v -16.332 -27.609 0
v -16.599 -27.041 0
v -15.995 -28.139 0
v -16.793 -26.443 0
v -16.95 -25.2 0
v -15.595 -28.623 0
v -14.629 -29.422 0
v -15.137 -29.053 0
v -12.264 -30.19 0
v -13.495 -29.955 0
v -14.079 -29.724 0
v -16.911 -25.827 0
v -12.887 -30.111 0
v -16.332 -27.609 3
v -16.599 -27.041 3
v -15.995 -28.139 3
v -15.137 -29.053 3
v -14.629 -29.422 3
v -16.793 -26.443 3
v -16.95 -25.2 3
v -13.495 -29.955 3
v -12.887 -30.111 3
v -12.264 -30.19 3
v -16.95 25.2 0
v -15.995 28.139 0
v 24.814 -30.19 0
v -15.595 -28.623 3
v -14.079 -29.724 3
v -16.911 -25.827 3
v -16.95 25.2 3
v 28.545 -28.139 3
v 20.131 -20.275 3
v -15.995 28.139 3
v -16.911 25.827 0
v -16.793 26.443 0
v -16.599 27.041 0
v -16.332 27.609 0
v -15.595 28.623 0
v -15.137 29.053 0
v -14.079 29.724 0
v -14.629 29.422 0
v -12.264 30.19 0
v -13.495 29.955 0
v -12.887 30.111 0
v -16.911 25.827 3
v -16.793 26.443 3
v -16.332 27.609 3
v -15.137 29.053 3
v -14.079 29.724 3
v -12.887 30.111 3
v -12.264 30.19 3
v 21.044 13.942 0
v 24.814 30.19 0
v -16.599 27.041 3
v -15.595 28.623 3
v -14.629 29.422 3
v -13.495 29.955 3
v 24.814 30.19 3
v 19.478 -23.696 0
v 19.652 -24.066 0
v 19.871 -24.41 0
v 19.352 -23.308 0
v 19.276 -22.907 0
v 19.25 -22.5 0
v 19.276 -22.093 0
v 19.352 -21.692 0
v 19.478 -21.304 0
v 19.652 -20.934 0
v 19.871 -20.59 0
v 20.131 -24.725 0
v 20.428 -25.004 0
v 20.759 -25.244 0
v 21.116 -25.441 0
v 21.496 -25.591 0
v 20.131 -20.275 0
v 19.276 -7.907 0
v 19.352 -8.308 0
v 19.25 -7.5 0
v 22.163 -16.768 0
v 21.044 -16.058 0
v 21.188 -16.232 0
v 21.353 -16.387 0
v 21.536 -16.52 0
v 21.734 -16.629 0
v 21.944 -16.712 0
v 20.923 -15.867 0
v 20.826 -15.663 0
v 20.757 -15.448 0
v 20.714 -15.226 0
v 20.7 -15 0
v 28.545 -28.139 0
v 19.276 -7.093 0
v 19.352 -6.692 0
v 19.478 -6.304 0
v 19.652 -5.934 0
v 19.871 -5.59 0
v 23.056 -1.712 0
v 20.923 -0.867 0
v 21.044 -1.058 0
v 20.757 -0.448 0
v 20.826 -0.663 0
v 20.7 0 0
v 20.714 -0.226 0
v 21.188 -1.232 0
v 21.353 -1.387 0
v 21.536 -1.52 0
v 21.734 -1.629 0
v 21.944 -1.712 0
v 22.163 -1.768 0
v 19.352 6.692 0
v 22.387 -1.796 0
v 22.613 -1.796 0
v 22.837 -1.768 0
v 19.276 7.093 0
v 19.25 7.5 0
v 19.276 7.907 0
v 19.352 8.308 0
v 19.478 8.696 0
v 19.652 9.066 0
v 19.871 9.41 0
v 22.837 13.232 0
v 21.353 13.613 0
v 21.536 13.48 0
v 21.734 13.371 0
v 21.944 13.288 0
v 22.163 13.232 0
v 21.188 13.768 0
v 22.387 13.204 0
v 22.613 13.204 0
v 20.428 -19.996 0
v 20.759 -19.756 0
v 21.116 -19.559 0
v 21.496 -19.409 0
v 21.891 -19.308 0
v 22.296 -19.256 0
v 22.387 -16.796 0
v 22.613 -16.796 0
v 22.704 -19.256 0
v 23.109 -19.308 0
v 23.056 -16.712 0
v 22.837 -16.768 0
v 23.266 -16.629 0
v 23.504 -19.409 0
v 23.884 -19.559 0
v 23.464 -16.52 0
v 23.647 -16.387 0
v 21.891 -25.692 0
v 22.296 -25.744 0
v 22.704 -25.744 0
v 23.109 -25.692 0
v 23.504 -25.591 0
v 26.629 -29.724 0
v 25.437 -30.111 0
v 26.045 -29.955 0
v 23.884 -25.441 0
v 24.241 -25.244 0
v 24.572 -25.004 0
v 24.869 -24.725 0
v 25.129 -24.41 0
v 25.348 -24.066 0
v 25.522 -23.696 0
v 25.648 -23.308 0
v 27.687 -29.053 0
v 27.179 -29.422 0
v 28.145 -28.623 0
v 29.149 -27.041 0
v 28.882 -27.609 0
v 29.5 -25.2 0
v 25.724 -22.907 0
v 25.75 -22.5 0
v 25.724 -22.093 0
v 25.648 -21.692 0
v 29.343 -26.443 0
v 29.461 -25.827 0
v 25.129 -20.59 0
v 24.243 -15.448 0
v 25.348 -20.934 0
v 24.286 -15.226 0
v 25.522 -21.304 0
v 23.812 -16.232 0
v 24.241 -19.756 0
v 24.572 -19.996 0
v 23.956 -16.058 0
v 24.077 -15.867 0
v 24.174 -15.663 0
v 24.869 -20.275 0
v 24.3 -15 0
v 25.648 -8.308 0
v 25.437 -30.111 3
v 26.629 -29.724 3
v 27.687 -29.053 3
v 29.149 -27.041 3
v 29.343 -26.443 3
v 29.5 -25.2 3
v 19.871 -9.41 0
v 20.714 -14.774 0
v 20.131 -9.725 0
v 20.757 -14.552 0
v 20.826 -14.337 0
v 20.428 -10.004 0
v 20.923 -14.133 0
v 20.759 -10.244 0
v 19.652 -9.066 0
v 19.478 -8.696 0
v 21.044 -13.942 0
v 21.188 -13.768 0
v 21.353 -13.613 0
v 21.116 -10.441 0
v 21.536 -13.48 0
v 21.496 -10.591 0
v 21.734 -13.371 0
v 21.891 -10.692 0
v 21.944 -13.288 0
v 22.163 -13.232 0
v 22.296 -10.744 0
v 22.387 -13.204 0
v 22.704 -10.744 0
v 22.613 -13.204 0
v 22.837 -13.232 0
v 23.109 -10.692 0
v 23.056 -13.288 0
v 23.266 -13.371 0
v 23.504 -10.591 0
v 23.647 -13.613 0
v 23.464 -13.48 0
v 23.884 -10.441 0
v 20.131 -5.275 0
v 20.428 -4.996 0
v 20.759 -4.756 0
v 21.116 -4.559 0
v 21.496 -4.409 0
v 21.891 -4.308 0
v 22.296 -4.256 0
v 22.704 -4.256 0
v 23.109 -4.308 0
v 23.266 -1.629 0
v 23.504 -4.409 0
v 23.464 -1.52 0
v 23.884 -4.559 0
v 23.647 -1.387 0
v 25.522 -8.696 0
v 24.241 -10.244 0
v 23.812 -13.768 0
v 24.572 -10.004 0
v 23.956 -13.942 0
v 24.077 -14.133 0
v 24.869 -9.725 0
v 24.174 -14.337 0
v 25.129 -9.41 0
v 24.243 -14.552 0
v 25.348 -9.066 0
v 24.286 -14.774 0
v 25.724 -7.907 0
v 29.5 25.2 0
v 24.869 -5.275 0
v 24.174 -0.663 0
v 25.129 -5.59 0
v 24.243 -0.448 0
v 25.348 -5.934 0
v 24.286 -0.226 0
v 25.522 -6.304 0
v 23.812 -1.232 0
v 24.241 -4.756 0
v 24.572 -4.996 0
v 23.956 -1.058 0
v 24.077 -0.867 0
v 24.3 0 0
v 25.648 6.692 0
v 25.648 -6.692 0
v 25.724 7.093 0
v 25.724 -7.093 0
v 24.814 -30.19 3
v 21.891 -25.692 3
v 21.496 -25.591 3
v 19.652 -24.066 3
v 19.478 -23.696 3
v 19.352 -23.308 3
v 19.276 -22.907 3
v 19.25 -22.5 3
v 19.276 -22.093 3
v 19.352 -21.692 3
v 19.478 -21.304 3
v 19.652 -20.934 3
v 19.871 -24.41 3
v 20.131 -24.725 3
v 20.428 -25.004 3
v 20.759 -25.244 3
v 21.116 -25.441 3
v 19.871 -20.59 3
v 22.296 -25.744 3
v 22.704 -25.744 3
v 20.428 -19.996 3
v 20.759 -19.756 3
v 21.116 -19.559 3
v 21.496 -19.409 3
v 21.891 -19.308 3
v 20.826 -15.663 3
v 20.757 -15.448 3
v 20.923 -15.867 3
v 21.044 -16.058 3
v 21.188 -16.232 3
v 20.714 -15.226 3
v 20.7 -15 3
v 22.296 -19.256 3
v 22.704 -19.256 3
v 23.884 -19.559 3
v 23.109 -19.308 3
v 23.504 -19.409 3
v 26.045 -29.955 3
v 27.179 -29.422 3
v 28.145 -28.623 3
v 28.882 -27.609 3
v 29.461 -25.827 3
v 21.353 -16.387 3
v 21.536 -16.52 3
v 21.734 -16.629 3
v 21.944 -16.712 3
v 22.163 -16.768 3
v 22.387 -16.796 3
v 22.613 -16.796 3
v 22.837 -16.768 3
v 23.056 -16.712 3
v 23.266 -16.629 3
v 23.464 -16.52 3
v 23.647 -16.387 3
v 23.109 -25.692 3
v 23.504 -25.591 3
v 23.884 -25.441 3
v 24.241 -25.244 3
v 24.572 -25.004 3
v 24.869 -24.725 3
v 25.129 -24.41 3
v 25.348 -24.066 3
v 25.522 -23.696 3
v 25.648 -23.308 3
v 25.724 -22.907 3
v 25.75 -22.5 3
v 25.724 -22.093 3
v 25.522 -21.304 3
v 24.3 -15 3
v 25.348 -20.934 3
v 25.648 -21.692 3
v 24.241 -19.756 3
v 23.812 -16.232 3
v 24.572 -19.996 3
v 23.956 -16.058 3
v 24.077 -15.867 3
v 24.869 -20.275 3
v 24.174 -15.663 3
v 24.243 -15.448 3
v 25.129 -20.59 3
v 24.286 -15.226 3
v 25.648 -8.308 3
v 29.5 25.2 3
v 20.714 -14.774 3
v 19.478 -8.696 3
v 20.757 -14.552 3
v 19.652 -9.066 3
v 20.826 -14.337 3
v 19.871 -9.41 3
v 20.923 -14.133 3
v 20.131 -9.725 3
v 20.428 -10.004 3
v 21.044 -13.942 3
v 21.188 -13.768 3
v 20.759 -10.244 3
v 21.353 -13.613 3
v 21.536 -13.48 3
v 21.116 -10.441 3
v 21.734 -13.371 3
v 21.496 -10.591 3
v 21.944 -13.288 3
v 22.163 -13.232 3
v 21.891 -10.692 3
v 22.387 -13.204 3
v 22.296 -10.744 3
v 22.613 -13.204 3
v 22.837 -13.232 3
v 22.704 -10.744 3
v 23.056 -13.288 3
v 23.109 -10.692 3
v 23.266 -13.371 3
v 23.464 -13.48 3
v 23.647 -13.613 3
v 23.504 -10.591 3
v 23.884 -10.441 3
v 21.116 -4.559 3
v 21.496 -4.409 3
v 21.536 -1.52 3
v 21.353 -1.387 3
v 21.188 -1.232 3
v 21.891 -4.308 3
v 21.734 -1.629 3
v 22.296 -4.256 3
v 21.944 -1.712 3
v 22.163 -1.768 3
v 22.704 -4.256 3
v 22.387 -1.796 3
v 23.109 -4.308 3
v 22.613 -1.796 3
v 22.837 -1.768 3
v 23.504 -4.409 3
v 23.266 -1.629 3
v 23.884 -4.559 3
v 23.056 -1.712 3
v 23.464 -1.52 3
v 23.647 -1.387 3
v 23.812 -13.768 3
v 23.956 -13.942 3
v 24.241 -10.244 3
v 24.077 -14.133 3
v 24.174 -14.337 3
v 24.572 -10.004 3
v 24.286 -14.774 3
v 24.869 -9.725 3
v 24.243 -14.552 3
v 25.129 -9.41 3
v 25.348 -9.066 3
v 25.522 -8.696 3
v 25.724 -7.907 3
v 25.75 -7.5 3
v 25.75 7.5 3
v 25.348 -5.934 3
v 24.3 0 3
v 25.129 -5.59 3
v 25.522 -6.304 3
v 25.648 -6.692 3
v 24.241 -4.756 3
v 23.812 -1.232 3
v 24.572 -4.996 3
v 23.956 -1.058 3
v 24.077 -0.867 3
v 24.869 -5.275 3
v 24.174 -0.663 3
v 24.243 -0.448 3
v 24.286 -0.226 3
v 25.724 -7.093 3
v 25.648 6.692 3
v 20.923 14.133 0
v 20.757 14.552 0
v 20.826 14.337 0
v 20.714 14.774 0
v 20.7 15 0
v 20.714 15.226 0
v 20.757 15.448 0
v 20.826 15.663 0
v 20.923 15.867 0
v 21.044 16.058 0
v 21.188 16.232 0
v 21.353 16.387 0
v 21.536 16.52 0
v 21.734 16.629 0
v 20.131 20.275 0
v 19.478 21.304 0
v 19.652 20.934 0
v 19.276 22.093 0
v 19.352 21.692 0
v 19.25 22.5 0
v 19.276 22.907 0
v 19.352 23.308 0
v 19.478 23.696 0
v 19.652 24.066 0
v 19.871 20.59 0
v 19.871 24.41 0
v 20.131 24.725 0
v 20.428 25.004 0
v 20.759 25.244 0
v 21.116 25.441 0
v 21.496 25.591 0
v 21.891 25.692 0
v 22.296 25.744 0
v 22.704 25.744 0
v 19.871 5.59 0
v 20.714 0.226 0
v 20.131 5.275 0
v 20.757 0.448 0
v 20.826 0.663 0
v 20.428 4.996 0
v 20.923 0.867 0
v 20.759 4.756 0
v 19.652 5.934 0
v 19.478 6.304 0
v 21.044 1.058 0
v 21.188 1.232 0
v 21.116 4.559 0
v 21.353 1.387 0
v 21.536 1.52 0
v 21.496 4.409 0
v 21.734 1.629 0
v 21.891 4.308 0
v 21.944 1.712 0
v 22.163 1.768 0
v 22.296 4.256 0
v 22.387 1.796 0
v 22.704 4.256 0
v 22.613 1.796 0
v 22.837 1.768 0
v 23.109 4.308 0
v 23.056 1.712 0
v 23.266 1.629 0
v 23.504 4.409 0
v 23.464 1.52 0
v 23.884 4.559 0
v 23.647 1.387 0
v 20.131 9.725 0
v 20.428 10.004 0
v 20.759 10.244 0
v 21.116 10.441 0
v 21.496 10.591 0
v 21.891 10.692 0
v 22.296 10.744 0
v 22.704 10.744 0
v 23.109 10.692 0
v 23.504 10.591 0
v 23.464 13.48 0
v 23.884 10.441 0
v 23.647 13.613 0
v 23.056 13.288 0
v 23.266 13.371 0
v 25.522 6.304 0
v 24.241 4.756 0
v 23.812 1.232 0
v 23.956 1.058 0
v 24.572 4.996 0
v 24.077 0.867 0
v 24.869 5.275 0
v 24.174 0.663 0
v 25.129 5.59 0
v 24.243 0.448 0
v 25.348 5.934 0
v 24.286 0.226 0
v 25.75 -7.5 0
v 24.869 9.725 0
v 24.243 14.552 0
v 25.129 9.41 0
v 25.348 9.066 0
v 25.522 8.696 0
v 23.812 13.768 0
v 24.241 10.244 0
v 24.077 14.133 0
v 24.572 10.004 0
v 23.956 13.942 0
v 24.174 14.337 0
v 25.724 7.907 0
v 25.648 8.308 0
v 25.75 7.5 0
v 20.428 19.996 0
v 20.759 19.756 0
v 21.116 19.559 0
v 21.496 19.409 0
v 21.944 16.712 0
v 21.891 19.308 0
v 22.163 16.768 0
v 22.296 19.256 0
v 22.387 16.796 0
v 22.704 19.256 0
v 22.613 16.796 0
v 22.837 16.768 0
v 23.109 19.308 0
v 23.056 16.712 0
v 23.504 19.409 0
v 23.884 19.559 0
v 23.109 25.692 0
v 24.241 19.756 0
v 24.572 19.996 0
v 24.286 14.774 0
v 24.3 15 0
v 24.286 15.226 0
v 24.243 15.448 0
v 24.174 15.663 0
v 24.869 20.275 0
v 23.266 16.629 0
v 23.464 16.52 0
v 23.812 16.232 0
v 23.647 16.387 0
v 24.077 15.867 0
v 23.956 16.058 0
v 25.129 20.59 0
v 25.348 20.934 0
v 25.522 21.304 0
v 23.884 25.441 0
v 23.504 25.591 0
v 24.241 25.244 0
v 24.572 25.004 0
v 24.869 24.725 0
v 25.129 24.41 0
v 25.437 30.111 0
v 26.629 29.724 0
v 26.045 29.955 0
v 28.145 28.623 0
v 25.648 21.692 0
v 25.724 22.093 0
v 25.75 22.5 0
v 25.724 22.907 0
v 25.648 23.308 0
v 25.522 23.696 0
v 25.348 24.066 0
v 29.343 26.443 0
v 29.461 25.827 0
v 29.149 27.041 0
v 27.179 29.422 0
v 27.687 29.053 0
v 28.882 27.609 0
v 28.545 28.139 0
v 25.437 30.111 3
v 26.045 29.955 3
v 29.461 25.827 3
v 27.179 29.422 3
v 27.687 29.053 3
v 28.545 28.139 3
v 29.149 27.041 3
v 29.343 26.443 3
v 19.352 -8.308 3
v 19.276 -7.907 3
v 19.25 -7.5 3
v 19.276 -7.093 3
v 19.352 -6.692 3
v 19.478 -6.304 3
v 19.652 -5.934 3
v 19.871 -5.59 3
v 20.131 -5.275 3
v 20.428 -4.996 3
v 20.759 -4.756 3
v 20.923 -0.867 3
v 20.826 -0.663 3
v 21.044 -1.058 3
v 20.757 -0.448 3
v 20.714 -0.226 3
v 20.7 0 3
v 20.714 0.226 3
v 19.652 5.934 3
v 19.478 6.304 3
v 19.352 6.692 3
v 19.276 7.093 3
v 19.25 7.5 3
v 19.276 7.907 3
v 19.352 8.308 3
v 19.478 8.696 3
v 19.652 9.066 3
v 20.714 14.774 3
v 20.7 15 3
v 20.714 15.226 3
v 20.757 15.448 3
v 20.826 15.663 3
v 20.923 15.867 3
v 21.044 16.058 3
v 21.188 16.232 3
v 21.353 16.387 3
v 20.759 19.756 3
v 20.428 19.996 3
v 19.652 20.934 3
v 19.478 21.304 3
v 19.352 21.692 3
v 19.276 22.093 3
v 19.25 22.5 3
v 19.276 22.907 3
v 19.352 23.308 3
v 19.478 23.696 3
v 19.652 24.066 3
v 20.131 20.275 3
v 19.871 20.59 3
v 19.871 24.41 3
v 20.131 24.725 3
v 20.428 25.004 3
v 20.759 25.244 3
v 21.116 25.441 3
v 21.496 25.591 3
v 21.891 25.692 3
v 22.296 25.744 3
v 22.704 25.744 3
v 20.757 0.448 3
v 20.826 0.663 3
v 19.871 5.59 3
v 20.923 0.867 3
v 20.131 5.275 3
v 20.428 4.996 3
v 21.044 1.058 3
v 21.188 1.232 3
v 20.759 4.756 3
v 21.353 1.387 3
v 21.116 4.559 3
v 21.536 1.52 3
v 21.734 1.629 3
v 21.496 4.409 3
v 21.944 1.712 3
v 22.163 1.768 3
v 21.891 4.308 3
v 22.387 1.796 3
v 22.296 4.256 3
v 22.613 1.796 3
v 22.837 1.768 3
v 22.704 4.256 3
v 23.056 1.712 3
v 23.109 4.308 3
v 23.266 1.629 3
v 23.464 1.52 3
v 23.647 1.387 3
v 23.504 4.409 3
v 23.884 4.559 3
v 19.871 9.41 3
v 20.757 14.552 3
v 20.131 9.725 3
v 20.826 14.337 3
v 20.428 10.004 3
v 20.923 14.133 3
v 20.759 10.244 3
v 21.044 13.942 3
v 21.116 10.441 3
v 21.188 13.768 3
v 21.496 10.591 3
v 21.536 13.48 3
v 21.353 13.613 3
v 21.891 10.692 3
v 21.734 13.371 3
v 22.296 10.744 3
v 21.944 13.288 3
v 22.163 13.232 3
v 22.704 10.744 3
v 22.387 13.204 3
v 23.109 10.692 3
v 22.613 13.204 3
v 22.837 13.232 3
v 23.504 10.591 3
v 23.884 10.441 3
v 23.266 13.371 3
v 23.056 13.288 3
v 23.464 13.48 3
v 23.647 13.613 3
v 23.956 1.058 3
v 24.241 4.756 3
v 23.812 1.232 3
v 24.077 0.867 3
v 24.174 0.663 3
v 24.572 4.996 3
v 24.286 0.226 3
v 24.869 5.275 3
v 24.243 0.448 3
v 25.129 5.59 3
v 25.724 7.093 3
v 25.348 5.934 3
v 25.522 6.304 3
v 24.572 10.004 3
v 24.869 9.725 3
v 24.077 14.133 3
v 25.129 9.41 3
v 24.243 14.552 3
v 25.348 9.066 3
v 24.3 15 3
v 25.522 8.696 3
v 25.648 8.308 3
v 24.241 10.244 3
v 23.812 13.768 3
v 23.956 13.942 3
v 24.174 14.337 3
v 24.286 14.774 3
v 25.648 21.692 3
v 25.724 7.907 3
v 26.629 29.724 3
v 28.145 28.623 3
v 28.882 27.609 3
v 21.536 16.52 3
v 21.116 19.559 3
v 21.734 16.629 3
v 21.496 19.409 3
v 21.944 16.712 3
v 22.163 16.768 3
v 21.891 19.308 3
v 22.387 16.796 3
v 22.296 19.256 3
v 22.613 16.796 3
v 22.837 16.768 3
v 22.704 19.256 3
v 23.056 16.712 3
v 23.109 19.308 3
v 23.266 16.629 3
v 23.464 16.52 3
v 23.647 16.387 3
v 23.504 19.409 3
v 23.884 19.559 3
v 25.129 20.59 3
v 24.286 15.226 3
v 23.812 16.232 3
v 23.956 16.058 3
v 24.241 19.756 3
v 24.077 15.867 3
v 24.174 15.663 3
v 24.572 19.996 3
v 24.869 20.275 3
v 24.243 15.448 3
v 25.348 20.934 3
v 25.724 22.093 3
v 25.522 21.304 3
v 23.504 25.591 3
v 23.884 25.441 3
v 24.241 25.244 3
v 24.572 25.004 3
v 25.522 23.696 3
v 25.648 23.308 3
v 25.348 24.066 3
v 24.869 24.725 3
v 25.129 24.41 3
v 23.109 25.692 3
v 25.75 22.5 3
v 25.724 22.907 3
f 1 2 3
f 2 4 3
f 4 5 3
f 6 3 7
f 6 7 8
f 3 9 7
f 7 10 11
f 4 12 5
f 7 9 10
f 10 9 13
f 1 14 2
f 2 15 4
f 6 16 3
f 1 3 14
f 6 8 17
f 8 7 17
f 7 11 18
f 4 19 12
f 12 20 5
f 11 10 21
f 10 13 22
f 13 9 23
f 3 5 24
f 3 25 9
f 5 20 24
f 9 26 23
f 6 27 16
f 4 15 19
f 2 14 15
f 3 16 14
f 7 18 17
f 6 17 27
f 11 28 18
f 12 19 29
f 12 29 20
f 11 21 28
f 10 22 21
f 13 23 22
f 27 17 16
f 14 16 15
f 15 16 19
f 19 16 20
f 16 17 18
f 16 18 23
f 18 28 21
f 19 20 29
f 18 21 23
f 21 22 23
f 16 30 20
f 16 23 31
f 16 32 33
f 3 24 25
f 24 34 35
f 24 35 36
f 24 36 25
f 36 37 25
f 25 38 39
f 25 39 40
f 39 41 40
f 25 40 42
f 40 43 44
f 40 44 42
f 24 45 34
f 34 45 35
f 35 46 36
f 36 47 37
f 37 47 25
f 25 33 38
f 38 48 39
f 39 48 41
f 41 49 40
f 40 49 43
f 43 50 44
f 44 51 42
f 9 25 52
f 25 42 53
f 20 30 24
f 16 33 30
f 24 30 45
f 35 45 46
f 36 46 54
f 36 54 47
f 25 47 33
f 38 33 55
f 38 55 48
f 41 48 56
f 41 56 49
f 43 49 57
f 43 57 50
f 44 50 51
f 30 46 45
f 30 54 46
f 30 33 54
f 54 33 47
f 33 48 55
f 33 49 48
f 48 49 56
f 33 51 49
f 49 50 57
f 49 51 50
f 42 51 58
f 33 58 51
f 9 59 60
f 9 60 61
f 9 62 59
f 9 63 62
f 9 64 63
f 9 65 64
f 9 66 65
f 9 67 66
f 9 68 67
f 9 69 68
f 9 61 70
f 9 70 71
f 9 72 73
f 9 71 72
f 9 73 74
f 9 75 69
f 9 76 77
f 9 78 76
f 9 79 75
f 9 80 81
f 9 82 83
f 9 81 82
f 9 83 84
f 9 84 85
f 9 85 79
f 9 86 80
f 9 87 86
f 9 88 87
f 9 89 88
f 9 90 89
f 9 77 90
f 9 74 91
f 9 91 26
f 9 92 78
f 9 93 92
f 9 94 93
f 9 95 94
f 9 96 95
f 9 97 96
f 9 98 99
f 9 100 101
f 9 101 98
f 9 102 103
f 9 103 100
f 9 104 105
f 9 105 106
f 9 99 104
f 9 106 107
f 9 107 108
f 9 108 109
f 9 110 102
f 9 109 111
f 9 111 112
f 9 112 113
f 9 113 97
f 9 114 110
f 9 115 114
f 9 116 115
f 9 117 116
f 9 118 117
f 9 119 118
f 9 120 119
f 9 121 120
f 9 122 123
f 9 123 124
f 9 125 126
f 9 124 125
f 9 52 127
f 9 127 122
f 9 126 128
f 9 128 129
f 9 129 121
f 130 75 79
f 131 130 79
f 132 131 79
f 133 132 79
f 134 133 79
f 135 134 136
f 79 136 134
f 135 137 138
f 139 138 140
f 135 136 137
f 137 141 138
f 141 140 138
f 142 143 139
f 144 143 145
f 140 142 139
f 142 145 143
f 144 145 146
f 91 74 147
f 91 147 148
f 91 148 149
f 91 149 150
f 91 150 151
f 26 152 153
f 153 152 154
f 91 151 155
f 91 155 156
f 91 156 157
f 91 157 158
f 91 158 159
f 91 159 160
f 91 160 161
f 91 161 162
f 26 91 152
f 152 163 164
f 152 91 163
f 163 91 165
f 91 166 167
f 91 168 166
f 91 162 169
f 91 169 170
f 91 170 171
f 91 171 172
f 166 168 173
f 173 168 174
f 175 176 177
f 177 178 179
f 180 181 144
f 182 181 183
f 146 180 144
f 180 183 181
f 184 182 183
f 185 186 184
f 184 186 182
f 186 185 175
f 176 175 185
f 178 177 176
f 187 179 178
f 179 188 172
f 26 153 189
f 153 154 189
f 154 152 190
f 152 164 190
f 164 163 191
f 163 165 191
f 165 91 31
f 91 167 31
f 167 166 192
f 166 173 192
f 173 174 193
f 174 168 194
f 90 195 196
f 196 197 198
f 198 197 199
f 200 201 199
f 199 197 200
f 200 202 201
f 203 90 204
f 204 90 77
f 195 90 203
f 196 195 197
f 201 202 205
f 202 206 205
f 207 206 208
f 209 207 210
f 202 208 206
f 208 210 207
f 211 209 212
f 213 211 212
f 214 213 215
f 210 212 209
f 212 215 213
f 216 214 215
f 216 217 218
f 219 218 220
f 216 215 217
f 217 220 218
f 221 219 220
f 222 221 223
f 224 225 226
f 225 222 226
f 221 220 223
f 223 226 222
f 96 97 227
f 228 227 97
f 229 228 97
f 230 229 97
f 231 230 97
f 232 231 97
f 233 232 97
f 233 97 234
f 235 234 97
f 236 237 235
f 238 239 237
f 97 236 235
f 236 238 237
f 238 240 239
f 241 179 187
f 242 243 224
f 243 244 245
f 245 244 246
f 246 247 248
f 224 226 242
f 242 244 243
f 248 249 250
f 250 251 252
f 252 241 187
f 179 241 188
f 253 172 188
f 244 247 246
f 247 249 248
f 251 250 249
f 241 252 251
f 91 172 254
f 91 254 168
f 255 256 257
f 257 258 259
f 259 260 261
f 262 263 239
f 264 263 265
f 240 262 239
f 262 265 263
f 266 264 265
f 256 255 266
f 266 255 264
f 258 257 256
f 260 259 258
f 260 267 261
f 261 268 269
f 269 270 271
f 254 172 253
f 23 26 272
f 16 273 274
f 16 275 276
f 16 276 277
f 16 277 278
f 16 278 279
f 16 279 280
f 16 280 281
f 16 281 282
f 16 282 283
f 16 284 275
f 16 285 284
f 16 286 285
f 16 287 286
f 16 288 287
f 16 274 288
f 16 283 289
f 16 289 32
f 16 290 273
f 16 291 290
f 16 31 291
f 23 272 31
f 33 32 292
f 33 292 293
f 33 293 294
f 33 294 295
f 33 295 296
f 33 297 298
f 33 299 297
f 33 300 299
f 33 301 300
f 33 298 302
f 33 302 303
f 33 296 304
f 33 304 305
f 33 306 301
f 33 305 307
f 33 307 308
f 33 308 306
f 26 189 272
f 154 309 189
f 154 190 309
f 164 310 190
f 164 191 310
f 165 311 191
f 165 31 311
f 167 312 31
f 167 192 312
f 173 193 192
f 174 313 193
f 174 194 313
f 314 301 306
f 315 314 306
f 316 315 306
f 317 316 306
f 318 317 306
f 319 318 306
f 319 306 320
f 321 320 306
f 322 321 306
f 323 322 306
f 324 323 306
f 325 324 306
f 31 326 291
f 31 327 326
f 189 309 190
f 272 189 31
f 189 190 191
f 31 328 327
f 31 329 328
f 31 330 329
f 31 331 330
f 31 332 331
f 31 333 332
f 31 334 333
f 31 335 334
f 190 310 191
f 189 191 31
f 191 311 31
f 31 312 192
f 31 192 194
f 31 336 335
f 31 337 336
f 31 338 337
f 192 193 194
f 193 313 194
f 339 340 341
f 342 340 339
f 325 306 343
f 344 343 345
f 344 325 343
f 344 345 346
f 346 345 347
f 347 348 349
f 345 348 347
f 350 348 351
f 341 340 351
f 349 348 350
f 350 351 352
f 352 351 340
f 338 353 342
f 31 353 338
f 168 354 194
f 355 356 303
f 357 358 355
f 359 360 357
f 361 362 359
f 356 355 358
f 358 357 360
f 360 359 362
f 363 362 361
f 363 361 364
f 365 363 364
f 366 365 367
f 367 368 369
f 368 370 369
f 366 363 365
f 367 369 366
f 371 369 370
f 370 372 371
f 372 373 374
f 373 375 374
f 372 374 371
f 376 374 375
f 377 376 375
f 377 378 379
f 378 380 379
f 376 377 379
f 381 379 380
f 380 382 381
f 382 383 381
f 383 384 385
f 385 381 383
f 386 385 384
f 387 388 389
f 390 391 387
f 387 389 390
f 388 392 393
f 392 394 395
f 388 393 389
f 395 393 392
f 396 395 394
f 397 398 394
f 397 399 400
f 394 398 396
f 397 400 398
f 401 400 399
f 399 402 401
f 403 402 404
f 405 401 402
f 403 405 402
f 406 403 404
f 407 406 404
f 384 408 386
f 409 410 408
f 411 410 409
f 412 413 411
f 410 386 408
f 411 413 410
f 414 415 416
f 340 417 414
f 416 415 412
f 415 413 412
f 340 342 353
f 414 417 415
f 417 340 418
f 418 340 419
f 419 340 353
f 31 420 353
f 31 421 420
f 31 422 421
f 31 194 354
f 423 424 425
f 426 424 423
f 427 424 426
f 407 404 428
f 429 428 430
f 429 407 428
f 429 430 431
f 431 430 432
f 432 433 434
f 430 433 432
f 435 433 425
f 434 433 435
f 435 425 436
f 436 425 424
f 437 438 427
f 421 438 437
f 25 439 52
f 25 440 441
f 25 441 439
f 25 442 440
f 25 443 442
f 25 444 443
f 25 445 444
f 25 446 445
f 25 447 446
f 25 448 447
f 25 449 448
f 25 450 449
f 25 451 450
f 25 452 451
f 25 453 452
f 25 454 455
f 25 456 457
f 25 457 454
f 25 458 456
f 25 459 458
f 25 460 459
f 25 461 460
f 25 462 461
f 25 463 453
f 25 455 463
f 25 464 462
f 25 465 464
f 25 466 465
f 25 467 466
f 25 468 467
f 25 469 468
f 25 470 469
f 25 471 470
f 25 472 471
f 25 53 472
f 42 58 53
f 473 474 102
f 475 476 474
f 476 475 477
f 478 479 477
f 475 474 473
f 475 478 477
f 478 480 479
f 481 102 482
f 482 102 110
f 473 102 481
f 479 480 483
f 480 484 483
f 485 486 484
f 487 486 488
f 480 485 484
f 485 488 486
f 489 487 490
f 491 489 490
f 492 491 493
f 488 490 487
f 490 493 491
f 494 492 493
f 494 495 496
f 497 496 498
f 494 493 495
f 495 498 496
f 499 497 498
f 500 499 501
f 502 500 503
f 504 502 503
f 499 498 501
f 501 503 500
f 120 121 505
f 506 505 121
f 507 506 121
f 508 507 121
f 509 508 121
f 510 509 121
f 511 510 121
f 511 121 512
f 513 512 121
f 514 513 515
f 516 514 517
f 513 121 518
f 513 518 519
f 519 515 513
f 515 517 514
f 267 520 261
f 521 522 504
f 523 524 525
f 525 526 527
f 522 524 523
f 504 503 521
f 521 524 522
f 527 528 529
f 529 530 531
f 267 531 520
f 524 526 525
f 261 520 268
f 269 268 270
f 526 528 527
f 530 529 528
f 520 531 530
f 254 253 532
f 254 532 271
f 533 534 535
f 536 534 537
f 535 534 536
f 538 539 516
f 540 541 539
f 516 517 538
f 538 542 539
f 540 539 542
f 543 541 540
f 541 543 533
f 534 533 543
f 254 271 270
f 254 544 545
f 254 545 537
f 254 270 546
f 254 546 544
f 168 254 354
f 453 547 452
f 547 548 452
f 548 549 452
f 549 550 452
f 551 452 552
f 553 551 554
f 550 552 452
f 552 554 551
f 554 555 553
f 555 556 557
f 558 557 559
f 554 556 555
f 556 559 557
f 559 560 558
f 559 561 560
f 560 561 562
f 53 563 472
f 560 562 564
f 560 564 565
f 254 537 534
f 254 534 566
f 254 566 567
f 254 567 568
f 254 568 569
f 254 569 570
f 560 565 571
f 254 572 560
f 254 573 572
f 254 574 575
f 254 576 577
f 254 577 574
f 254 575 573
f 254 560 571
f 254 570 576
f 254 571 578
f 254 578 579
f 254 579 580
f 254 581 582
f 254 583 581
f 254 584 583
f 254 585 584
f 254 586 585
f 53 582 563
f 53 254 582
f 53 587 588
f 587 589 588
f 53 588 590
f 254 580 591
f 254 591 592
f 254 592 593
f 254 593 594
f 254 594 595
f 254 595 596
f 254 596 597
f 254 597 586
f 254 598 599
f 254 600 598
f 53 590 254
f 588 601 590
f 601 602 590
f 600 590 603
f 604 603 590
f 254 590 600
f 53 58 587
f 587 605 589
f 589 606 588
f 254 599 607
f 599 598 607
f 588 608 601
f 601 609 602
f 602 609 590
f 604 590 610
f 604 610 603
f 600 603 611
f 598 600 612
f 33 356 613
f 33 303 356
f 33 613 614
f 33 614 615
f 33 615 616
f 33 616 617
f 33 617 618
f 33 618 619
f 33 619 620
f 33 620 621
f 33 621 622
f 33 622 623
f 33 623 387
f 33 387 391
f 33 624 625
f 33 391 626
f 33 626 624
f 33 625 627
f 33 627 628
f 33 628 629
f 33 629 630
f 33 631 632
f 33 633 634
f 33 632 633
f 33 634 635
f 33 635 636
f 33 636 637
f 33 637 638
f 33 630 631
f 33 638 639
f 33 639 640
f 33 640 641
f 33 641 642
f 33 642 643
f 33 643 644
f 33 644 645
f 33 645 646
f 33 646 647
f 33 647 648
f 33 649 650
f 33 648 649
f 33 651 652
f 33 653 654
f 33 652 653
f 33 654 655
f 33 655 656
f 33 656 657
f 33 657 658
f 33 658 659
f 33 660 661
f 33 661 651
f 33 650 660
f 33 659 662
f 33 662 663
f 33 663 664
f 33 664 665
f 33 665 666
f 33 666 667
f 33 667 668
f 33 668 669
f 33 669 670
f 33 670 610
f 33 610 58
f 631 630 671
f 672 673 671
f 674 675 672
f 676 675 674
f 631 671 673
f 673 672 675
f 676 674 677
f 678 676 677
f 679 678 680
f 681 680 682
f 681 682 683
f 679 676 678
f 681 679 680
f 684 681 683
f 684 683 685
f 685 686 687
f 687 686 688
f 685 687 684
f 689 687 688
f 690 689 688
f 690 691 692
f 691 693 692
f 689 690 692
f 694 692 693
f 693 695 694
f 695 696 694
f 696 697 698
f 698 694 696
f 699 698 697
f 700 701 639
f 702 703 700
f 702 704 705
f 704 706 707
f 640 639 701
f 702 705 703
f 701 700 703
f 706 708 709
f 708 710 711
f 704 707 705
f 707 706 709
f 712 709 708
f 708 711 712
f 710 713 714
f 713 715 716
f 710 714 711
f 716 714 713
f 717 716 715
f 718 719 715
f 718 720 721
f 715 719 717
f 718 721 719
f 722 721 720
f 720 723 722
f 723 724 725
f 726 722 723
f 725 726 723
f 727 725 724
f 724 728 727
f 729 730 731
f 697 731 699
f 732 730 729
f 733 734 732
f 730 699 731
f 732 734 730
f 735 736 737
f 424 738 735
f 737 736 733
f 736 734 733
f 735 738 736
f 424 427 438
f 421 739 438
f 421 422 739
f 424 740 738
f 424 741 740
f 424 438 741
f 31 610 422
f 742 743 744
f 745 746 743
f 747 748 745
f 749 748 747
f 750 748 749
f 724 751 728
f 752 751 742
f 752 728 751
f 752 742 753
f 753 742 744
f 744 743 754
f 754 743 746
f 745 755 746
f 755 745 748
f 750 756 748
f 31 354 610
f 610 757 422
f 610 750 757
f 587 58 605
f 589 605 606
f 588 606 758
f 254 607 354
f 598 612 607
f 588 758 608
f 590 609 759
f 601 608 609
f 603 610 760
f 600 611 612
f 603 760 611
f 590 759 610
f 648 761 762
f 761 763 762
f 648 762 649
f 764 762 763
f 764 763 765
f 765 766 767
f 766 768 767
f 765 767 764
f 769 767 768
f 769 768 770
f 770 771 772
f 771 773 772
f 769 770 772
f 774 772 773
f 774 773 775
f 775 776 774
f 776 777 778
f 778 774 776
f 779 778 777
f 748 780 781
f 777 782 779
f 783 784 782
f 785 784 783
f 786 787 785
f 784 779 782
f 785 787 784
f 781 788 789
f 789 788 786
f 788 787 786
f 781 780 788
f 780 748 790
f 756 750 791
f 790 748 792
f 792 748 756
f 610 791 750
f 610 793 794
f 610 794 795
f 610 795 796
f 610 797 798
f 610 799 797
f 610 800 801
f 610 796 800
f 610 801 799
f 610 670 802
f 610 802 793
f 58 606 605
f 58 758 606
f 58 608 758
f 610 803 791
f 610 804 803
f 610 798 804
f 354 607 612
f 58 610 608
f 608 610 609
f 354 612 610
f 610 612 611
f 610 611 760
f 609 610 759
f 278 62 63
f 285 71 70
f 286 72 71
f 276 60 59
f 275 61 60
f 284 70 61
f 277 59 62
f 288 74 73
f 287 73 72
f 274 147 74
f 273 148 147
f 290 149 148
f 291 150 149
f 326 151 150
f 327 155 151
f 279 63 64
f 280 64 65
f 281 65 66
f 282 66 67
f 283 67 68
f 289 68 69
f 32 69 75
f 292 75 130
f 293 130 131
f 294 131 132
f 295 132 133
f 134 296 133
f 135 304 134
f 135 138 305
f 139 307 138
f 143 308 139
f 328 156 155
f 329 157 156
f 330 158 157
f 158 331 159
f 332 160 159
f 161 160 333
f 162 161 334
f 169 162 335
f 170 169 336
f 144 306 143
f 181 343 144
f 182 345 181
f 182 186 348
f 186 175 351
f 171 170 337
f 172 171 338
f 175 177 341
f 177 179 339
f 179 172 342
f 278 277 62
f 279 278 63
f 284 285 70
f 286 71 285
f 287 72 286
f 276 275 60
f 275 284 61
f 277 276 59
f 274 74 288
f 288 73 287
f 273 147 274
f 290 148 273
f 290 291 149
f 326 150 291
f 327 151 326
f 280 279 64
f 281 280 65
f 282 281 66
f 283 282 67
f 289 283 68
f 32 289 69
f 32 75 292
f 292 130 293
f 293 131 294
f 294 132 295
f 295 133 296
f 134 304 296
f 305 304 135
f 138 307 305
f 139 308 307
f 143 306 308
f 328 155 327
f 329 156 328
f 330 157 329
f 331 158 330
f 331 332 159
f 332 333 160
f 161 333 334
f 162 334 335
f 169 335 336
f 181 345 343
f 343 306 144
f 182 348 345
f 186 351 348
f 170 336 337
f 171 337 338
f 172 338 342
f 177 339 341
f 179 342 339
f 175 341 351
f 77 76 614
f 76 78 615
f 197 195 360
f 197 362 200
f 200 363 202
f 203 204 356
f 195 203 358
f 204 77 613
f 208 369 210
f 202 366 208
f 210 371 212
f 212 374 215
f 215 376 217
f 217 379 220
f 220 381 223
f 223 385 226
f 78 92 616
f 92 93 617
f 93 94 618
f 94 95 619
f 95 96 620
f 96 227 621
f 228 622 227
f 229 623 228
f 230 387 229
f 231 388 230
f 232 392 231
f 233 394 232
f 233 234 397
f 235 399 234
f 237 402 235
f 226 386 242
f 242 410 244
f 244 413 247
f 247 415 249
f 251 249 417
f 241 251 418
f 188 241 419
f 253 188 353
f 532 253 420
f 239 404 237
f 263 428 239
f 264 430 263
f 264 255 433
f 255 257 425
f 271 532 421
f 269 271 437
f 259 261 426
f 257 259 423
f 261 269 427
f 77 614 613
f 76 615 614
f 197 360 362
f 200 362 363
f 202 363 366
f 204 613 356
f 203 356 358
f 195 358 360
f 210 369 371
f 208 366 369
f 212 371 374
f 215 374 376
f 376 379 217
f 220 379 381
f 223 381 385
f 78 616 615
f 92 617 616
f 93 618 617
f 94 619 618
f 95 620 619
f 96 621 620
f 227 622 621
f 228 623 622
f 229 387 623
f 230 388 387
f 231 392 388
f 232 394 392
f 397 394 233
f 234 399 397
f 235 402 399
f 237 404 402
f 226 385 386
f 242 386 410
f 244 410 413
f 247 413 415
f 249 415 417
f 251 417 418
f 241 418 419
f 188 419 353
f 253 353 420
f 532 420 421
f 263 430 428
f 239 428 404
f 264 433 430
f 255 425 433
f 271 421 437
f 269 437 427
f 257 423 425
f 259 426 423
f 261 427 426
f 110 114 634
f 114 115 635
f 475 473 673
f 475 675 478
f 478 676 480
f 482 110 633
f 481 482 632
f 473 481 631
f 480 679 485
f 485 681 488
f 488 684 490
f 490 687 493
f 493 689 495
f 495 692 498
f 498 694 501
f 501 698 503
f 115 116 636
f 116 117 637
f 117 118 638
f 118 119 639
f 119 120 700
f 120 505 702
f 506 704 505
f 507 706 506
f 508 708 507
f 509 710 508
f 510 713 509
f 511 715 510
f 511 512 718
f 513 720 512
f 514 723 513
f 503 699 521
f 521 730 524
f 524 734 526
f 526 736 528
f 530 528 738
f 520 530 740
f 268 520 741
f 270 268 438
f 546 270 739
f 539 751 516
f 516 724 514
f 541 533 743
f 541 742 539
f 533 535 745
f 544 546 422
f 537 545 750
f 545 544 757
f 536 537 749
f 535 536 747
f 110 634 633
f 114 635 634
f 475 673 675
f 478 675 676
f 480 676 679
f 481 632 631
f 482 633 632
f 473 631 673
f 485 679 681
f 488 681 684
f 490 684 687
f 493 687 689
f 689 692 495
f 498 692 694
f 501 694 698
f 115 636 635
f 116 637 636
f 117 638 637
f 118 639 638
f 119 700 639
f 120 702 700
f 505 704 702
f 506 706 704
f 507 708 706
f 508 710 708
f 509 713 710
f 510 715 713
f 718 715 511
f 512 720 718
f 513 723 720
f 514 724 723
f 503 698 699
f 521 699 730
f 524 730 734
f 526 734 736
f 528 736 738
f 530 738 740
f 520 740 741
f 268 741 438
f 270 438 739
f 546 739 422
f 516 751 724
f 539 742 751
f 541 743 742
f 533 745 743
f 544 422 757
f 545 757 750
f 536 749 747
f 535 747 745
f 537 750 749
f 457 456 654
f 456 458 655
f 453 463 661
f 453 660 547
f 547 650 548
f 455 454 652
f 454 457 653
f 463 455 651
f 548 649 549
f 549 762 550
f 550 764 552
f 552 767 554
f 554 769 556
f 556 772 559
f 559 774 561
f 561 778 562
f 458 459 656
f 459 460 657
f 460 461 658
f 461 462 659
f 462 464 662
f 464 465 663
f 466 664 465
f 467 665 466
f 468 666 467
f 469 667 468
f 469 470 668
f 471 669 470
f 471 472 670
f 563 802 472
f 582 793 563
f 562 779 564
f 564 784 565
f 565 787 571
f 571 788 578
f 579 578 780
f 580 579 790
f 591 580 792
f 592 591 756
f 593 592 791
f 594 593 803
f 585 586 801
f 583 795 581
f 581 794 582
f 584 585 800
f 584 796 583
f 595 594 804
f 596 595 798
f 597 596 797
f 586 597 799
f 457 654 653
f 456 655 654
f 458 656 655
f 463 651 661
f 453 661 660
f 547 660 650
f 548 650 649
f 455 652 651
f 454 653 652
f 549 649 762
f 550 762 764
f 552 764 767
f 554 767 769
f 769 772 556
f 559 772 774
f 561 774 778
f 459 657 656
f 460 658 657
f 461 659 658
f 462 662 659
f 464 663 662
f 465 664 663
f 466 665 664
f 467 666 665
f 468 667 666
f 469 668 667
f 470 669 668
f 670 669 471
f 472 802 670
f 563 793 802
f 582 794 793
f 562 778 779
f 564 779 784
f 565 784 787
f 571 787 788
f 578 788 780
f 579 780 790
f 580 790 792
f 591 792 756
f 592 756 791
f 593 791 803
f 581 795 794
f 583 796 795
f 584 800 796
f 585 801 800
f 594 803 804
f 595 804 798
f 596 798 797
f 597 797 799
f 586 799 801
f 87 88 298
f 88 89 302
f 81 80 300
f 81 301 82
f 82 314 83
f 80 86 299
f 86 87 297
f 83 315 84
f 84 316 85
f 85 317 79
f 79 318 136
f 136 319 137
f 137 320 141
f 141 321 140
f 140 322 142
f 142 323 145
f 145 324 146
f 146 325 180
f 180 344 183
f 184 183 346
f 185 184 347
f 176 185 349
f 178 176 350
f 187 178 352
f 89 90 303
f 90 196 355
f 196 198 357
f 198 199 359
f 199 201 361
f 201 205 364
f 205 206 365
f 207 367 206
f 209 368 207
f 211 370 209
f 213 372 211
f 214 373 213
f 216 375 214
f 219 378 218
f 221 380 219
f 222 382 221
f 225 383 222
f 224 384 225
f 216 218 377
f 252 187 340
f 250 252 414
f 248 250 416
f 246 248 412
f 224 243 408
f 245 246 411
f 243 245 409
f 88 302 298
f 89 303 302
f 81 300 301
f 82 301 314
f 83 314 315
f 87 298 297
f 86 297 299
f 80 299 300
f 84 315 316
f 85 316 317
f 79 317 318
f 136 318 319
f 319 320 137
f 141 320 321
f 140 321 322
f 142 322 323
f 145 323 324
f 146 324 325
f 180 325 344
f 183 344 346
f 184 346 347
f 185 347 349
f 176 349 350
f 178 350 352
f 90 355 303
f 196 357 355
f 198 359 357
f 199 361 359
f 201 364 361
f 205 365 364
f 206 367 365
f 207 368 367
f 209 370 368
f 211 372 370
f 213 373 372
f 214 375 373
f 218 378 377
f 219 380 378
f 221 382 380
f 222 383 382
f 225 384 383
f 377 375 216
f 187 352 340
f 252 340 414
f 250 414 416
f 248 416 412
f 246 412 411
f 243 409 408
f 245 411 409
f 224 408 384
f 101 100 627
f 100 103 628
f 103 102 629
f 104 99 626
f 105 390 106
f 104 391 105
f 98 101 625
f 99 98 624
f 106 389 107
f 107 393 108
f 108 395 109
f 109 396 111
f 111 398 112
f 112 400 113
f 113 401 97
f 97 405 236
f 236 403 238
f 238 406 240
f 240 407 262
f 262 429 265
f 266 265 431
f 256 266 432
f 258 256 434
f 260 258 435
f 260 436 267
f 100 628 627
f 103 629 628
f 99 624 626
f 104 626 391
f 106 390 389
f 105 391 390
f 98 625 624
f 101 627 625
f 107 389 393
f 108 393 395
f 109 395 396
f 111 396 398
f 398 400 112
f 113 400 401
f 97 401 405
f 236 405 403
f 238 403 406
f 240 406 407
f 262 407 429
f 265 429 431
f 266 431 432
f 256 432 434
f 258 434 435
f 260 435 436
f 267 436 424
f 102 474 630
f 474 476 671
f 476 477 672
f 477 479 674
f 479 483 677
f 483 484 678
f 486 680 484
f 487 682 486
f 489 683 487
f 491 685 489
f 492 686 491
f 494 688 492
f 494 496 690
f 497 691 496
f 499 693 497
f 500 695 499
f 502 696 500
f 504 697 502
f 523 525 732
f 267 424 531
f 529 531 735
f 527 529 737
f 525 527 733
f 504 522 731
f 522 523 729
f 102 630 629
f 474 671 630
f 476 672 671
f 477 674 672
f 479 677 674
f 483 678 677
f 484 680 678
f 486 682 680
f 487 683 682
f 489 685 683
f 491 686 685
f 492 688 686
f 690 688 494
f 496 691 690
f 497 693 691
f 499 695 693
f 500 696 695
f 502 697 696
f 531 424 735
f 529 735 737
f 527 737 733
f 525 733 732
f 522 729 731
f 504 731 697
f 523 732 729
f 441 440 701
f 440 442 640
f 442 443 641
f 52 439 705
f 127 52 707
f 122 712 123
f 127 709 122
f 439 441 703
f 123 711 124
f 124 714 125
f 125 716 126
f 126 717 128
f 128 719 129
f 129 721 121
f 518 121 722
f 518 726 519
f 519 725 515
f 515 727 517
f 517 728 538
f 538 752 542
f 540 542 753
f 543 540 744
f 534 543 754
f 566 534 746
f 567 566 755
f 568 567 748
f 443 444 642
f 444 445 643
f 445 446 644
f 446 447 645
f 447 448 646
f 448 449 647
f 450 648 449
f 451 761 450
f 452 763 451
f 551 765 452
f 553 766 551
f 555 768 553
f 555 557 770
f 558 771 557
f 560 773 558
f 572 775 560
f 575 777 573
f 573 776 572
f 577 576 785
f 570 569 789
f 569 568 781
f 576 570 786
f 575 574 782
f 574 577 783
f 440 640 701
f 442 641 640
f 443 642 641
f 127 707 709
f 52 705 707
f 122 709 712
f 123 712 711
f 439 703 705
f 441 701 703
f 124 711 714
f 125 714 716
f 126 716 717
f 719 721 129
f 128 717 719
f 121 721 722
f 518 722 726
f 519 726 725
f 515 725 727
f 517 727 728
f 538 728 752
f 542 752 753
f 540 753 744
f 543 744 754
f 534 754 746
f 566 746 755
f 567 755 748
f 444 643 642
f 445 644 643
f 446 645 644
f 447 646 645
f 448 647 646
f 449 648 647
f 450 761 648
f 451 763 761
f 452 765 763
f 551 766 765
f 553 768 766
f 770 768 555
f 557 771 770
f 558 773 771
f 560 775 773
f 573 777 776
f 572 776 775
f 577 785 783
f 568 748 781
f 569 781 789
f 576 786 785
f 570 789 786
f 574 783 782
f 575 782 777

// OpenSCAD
$fn = 50;

difference() {
	union() {
		translate(v = [6.275, 0.0, 0]) {
			hull() {
				translate(v = [-18.225, 25.199999999999996, 0]) {
					cylinder(h = 3, r = 5);
				}
				translate(v = [18.225, 25.199999999999996, 0]) {
					cylinder(h = 3, r = 5);
				}
				translate(v = [-18.225, -25.199999999999996, 0]) {
					cylinder(h = 3, r = 5);
				}
				translate(v = [18.225, -25.199999999999996, 0]) {
					cylinder(h = 3, r = 5);
				}
			}
		}
	}
	union() {
		translate(v = [22.5, -22.5, -1]) {
			cylinder(h = 5, r = 3.25);
		}
		translate(v = [22.5, -7.5, -1]) {
			cylinder(h = 5, r = 3.25);
		}
		translate(v = [22.5, 7.5, -1]) {
			cylinder(h = 5, r = 3.25);
		}
		translate(v = [22.5, 22.5, -1]) {
			cylinder(h = 5, r = 3.25);
		}
		translate(v = [22.5, -15.0, -1]) {
			cylinder(h = 5, r = 1.8);
		}
		translate(v = [22.5, 0.0, -1]) {
			cylinder(h = 5, r = 1.8);
		}
		translate(v = [22.5, 15.0, -1]) {
			cylinder(h = 5, r = 1.8);
		}
	}
}
